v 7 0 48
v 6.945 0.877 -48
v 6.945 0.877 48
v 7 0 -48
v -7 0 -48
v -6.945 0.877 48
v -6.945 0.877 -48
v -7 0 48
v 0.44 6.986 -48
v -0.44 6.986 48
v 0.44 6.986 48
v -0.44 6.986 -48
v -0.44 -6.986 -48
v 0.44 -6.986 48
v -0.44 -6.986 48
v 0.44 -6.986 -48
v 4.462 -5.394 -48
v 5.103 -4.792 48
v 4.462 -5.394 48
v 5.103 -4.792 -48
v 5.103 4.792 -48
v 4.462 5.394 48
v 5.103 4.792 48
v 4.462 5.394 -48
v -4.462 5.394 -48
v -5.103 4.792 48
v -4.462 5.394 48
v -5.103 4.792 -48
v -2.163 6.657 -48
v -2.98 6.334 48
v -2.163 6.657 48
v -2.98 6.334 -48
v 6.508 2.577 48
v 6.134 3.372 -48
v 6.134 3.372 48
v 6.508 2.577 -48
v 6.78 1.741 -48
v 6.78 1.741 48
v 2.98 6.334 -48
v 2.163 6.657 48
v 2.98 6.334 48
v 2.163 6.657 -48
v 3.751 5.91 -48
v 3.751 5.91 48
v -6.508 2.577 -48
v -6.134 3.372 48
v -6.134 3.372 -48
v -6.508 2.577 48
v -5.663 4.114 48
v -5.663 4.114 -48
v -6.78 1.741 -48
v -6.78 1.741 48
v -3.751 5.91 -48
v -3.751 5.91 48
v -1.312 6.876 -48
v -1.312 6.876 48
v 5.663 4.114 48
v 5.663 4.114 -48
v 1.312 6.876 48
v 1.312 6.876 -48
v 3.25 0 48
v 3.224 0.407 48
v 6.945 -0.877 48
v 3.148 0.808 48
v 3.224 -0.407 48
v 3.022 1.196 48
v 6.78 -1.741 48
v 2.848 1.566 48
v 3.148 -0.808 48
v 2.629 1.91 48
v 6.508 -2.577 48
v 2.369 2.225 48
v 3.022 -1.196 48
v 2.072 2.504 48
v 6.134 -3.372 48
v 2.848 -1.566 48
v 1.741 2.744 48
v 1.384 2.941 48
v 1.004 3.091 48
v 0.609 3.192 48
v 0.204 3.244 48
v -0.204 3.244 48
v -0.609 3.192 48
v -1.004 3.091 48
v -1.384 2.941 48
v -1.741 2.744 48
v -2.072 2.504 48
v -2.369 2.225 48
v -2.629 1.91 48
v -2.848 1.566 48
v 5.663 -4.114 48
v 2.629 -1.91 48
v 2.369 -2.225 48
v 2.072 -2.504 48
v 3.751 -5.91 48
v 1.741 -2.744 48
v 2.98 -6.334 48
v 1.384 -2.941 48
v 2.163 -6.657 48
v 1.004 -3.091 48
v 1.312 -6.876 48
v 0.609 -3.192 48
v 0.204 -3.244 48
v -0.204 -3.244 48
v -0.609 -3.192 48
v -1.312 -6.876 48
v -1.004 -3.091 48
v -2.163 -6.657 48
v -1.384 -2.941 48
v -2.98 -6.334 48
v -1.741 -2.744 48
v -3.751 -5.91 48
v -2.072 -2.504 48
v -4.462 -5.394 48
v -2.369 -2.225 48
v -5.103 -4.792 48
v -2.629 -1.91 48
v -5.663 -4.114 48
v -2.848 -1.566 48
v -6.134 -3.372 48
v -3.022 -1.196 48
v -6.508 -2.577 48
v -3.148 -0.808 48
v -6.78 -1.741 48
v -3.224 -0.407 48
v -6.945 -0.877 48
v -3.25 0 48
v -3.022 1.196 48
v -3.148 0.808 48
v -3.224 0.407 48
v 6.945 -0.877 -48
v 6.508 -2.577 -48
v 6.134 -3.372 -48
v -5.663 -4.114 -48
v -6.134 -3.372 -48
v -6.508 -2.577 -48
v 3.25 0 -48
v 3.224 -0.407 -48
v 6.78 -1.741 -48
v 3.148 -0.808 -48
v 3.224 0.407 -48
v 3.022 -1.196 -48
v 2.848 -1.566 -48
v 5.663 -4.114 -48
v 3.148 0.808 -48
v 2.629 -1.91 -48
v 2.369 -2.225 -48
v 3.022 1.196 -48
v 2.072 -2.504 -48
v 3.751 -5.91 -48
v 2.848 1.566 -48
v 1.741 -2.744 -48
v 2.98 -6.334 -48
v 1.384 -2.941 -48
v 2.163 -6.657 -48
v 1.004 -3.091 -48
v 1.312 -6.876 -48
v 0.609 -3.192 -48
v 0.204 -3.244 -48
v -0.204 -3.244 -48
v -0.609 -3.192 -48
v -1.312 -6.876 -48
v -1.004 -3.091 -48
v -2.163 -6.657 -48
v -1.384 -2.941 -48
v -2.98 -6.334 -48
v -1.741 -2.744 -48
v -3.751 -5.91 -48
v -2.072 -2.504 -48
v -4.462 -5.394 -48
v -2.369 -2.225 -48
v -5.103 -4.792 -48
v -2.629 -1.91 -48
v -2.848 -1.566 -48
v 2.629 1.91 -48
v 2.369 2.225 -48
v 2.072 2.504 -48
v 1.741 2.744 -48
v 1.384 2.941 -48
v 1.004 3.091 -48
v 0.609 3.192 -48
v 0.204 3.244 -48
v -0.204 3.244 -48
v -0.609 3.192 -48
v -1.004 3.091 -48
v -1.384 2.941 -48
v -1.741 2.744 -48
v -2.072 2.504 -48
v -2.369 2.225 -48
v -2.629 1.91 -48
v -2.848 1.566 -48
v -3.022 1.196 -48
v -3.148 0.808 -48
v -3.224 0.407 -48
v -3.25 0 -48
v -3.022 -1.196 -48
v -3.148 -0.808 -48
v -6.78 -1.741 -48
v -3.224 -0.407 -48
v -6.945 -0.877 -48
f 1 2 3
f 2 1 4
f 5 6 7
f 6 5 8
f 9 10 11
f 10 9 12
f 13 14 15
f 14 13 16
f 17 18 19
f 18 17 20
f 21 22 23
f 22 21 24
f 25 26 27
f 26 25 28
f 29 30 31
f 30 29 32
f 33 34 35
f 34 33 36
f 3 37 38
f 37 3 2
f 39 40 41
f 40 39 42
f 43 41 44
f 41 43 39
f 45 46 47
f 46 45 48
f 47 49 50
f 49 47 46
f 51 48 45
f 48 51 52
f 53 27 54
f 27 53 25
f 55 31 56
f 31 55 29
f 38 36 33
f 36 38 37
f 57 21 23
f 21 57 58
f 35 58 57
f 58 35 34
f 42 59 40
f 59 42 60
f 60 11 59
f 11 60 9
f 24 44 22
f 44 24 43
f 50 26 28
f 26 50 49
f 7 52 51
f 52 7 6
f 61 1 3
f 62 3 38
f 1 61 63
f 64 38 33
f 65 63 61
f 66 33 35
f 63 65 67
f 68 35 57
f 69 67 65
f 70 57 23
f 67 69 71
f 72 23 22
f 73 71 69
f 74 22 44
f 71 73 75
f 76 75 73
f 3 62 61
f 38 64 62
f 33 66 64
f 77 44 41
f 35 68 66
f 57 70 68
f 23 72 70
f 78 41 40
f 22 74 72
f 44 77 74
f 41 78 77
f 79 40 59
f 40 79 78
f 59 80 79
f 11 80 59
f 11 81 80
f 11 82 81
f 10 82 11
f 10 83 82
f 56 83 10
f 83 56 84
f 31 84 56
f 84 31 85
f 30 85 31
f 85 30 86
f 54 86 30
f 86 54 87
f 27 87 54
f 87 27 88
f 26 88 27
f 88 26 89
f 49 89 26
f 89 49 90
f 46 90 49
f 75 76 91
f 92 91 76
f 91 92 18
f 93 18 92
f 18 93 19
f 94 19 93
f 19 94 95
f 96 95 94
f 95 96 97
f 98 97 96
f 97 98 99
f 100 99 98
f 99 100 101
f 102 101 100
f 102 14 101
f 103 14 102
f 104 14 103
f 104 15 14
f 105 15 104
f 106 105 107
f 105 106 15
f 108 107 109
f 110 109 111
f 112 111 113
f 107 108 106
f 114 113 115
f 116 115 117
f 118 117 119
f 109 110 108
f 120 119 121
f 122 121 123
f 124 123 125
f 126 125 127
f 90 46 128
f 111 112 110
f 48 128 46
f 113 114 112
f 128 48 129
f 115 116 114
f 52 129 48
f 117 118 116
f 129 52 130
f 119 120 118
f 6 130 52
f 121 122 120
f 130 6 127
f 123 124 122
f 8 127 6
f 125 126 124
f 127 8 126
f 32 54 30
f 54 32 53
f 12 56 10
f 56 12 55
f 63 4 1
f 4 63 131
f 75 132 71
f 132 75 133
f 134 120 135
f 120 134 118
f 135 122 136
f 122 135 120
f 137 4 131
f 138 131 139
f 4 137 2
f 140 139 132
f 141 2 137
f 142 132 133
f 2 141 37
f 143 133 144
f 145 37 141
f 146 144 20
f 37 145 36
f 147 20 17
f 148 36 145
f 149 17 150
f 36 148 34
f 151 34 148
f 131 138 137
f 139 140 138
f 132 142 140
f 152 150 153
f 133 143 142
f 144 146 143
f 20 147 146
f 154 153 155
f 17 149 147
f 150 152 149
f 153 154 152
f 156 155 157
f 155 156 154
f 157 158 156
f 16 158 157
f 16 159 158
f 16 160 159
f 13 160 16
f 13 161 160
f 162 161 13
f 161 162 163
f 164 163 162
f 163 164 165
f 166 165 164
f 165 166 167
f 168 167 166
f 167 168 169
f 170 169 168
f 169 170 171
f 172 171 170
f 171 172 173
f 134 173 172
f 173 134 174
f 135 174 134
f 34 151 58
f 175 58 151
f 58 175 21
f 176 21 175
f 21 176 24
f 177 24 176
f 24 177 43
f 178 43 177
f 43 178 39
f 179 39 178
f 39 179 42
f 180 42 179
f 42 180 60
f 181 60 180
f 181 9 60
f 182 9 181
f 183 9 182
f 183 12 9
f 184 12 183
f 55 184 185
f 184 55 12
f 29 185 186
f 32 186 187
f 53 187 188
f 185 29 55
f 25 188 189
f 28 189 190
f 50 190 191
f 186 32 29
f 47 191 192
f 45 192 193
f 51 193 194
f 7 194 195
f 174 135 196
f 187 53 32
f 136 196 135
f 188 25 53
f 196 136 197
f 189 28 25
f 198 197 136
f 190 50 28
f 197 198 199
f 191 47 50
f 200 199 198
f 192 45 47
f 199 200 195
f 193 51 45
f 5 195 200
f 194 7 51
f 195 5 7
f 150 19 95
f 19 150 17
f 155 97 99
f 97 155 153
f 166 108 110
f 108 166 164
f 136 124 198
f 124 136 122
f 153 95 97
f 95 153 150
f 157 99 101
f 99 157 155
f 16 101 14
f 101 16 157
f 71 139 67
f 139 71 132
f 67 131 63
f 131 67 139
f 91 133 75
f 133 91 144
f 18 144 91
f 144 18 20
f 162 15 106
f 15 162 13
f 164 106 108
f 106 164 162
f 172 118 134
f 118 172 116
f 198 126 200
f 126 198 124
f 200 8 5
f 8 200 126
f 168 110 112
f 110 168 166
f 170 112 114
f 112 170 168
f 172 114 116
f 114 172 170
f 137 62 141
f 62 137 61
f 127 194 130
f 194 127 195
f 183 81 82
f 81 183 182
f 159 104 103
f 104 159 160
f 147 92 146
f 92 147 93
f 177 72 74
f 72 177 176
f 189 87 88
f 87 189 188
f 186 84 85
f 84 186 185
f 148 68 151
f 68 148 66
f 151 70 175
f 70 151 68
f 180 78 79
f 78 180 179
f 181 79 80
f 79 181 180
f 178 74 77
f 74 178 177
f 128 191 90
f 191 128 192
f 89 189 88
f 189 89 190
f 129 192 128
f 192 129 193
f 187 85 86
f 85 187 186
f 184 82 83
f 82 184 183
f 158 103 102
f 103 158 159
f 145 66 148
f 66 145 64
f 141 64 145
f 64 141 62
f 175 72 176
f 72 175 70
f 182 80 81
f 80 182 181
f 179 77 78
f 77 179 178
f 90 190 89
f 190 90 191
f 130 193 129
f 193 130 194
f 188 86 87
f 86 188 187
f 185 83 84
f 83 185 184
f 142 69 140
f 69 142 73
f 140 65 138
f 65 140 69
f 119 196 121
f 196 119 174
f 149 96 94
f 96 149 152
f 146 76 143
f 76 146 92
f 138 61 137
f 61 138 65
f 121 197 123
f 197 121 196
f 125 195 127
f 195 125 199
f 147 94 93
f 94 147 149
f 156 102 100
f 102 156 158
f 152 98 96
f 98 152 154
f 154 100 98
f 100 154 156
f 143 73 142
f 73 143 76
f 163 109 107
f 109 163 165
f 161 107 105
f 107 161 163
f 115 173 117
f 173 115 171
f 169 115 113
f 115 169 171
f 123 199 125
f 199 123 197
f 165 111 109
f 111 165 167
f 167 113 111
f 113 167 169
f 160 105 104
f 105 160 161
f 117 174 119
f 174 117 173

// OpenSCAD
$fn = 50;


difference() {
	union() {
		translate(v = [0, 0, -48.0000000000]) {
			cylinder(h = 96, r = 7.0000000000);
		}
	}
	union() {
		translate(v = [0, 0, -100.0000000000]) {
			cylinder(h = 200, r = 3.2500000000);
		}
	}
}
